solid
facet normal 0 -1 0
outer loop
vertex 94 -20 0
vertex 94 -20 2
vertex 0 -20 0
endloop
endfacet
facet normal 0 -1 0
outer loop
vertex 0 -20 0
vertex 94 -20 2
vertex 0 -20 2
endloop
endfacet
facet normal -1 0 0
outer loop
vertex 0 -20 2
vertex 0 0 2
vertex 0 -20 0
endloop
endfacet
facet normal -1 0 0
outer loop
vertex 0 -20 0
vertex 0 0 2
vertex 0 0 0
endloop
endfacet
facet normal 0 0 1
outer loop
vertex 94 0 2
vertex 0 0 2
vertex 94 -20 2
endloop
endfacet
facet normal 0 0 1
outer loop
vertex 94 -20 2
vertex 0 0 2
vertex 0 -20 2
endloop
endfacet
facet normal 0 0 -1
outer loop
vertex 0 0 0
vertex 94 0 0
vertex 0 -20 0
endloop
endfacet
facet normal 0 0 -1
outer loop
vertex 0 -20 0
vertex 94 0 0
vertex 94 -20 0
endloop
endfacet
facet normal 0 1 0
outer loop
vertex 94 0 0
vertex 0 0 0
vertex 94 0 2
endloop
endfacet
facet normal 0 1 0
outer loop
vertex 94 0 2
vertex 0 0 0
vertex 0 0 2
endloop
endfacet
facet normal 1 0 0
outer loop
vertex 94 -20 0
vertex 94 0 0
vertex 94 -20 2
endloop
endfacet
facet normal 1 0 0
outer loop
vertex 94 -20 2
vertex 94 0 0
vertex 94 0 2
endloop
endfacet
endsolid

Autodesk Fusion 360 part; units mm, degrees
sketch "Sketch1" plane through (0, 0, 0) normal (0, 0, 1) x (1, 0, 0)
  line L0 (0, 0) -> (94, 0)
  line L1 (94, 0) -> (94, -25)
  line L2 (94, -25) -> (0, -25)
  line L3 (0, -25) -> (0, 0)
  dimension "d1" = 94
  dimension "d2" = 25
extrude "Extrude1" add sketch "Sketch1" along normal blind 2
extrude "Extrude2" cut 1 faces at (62.6667, -25, 0.6667) along direction (0, 1, 0) blind 2.7
extrude "Extrude3" cut 1 faces at (62.6667, -22.3, 0.6667) along direction (0, 1, 0) blind 1.7
extrude "Extrude4" cut 1 faces at (62.6667, -20.6, 0.6667) along direction (0, 1, 0) blind 1
extrude "Extrude5" add 1 faces at (62.6667, -19.6, 0.6667) along direction (0, -1, 0) blind 0.4
